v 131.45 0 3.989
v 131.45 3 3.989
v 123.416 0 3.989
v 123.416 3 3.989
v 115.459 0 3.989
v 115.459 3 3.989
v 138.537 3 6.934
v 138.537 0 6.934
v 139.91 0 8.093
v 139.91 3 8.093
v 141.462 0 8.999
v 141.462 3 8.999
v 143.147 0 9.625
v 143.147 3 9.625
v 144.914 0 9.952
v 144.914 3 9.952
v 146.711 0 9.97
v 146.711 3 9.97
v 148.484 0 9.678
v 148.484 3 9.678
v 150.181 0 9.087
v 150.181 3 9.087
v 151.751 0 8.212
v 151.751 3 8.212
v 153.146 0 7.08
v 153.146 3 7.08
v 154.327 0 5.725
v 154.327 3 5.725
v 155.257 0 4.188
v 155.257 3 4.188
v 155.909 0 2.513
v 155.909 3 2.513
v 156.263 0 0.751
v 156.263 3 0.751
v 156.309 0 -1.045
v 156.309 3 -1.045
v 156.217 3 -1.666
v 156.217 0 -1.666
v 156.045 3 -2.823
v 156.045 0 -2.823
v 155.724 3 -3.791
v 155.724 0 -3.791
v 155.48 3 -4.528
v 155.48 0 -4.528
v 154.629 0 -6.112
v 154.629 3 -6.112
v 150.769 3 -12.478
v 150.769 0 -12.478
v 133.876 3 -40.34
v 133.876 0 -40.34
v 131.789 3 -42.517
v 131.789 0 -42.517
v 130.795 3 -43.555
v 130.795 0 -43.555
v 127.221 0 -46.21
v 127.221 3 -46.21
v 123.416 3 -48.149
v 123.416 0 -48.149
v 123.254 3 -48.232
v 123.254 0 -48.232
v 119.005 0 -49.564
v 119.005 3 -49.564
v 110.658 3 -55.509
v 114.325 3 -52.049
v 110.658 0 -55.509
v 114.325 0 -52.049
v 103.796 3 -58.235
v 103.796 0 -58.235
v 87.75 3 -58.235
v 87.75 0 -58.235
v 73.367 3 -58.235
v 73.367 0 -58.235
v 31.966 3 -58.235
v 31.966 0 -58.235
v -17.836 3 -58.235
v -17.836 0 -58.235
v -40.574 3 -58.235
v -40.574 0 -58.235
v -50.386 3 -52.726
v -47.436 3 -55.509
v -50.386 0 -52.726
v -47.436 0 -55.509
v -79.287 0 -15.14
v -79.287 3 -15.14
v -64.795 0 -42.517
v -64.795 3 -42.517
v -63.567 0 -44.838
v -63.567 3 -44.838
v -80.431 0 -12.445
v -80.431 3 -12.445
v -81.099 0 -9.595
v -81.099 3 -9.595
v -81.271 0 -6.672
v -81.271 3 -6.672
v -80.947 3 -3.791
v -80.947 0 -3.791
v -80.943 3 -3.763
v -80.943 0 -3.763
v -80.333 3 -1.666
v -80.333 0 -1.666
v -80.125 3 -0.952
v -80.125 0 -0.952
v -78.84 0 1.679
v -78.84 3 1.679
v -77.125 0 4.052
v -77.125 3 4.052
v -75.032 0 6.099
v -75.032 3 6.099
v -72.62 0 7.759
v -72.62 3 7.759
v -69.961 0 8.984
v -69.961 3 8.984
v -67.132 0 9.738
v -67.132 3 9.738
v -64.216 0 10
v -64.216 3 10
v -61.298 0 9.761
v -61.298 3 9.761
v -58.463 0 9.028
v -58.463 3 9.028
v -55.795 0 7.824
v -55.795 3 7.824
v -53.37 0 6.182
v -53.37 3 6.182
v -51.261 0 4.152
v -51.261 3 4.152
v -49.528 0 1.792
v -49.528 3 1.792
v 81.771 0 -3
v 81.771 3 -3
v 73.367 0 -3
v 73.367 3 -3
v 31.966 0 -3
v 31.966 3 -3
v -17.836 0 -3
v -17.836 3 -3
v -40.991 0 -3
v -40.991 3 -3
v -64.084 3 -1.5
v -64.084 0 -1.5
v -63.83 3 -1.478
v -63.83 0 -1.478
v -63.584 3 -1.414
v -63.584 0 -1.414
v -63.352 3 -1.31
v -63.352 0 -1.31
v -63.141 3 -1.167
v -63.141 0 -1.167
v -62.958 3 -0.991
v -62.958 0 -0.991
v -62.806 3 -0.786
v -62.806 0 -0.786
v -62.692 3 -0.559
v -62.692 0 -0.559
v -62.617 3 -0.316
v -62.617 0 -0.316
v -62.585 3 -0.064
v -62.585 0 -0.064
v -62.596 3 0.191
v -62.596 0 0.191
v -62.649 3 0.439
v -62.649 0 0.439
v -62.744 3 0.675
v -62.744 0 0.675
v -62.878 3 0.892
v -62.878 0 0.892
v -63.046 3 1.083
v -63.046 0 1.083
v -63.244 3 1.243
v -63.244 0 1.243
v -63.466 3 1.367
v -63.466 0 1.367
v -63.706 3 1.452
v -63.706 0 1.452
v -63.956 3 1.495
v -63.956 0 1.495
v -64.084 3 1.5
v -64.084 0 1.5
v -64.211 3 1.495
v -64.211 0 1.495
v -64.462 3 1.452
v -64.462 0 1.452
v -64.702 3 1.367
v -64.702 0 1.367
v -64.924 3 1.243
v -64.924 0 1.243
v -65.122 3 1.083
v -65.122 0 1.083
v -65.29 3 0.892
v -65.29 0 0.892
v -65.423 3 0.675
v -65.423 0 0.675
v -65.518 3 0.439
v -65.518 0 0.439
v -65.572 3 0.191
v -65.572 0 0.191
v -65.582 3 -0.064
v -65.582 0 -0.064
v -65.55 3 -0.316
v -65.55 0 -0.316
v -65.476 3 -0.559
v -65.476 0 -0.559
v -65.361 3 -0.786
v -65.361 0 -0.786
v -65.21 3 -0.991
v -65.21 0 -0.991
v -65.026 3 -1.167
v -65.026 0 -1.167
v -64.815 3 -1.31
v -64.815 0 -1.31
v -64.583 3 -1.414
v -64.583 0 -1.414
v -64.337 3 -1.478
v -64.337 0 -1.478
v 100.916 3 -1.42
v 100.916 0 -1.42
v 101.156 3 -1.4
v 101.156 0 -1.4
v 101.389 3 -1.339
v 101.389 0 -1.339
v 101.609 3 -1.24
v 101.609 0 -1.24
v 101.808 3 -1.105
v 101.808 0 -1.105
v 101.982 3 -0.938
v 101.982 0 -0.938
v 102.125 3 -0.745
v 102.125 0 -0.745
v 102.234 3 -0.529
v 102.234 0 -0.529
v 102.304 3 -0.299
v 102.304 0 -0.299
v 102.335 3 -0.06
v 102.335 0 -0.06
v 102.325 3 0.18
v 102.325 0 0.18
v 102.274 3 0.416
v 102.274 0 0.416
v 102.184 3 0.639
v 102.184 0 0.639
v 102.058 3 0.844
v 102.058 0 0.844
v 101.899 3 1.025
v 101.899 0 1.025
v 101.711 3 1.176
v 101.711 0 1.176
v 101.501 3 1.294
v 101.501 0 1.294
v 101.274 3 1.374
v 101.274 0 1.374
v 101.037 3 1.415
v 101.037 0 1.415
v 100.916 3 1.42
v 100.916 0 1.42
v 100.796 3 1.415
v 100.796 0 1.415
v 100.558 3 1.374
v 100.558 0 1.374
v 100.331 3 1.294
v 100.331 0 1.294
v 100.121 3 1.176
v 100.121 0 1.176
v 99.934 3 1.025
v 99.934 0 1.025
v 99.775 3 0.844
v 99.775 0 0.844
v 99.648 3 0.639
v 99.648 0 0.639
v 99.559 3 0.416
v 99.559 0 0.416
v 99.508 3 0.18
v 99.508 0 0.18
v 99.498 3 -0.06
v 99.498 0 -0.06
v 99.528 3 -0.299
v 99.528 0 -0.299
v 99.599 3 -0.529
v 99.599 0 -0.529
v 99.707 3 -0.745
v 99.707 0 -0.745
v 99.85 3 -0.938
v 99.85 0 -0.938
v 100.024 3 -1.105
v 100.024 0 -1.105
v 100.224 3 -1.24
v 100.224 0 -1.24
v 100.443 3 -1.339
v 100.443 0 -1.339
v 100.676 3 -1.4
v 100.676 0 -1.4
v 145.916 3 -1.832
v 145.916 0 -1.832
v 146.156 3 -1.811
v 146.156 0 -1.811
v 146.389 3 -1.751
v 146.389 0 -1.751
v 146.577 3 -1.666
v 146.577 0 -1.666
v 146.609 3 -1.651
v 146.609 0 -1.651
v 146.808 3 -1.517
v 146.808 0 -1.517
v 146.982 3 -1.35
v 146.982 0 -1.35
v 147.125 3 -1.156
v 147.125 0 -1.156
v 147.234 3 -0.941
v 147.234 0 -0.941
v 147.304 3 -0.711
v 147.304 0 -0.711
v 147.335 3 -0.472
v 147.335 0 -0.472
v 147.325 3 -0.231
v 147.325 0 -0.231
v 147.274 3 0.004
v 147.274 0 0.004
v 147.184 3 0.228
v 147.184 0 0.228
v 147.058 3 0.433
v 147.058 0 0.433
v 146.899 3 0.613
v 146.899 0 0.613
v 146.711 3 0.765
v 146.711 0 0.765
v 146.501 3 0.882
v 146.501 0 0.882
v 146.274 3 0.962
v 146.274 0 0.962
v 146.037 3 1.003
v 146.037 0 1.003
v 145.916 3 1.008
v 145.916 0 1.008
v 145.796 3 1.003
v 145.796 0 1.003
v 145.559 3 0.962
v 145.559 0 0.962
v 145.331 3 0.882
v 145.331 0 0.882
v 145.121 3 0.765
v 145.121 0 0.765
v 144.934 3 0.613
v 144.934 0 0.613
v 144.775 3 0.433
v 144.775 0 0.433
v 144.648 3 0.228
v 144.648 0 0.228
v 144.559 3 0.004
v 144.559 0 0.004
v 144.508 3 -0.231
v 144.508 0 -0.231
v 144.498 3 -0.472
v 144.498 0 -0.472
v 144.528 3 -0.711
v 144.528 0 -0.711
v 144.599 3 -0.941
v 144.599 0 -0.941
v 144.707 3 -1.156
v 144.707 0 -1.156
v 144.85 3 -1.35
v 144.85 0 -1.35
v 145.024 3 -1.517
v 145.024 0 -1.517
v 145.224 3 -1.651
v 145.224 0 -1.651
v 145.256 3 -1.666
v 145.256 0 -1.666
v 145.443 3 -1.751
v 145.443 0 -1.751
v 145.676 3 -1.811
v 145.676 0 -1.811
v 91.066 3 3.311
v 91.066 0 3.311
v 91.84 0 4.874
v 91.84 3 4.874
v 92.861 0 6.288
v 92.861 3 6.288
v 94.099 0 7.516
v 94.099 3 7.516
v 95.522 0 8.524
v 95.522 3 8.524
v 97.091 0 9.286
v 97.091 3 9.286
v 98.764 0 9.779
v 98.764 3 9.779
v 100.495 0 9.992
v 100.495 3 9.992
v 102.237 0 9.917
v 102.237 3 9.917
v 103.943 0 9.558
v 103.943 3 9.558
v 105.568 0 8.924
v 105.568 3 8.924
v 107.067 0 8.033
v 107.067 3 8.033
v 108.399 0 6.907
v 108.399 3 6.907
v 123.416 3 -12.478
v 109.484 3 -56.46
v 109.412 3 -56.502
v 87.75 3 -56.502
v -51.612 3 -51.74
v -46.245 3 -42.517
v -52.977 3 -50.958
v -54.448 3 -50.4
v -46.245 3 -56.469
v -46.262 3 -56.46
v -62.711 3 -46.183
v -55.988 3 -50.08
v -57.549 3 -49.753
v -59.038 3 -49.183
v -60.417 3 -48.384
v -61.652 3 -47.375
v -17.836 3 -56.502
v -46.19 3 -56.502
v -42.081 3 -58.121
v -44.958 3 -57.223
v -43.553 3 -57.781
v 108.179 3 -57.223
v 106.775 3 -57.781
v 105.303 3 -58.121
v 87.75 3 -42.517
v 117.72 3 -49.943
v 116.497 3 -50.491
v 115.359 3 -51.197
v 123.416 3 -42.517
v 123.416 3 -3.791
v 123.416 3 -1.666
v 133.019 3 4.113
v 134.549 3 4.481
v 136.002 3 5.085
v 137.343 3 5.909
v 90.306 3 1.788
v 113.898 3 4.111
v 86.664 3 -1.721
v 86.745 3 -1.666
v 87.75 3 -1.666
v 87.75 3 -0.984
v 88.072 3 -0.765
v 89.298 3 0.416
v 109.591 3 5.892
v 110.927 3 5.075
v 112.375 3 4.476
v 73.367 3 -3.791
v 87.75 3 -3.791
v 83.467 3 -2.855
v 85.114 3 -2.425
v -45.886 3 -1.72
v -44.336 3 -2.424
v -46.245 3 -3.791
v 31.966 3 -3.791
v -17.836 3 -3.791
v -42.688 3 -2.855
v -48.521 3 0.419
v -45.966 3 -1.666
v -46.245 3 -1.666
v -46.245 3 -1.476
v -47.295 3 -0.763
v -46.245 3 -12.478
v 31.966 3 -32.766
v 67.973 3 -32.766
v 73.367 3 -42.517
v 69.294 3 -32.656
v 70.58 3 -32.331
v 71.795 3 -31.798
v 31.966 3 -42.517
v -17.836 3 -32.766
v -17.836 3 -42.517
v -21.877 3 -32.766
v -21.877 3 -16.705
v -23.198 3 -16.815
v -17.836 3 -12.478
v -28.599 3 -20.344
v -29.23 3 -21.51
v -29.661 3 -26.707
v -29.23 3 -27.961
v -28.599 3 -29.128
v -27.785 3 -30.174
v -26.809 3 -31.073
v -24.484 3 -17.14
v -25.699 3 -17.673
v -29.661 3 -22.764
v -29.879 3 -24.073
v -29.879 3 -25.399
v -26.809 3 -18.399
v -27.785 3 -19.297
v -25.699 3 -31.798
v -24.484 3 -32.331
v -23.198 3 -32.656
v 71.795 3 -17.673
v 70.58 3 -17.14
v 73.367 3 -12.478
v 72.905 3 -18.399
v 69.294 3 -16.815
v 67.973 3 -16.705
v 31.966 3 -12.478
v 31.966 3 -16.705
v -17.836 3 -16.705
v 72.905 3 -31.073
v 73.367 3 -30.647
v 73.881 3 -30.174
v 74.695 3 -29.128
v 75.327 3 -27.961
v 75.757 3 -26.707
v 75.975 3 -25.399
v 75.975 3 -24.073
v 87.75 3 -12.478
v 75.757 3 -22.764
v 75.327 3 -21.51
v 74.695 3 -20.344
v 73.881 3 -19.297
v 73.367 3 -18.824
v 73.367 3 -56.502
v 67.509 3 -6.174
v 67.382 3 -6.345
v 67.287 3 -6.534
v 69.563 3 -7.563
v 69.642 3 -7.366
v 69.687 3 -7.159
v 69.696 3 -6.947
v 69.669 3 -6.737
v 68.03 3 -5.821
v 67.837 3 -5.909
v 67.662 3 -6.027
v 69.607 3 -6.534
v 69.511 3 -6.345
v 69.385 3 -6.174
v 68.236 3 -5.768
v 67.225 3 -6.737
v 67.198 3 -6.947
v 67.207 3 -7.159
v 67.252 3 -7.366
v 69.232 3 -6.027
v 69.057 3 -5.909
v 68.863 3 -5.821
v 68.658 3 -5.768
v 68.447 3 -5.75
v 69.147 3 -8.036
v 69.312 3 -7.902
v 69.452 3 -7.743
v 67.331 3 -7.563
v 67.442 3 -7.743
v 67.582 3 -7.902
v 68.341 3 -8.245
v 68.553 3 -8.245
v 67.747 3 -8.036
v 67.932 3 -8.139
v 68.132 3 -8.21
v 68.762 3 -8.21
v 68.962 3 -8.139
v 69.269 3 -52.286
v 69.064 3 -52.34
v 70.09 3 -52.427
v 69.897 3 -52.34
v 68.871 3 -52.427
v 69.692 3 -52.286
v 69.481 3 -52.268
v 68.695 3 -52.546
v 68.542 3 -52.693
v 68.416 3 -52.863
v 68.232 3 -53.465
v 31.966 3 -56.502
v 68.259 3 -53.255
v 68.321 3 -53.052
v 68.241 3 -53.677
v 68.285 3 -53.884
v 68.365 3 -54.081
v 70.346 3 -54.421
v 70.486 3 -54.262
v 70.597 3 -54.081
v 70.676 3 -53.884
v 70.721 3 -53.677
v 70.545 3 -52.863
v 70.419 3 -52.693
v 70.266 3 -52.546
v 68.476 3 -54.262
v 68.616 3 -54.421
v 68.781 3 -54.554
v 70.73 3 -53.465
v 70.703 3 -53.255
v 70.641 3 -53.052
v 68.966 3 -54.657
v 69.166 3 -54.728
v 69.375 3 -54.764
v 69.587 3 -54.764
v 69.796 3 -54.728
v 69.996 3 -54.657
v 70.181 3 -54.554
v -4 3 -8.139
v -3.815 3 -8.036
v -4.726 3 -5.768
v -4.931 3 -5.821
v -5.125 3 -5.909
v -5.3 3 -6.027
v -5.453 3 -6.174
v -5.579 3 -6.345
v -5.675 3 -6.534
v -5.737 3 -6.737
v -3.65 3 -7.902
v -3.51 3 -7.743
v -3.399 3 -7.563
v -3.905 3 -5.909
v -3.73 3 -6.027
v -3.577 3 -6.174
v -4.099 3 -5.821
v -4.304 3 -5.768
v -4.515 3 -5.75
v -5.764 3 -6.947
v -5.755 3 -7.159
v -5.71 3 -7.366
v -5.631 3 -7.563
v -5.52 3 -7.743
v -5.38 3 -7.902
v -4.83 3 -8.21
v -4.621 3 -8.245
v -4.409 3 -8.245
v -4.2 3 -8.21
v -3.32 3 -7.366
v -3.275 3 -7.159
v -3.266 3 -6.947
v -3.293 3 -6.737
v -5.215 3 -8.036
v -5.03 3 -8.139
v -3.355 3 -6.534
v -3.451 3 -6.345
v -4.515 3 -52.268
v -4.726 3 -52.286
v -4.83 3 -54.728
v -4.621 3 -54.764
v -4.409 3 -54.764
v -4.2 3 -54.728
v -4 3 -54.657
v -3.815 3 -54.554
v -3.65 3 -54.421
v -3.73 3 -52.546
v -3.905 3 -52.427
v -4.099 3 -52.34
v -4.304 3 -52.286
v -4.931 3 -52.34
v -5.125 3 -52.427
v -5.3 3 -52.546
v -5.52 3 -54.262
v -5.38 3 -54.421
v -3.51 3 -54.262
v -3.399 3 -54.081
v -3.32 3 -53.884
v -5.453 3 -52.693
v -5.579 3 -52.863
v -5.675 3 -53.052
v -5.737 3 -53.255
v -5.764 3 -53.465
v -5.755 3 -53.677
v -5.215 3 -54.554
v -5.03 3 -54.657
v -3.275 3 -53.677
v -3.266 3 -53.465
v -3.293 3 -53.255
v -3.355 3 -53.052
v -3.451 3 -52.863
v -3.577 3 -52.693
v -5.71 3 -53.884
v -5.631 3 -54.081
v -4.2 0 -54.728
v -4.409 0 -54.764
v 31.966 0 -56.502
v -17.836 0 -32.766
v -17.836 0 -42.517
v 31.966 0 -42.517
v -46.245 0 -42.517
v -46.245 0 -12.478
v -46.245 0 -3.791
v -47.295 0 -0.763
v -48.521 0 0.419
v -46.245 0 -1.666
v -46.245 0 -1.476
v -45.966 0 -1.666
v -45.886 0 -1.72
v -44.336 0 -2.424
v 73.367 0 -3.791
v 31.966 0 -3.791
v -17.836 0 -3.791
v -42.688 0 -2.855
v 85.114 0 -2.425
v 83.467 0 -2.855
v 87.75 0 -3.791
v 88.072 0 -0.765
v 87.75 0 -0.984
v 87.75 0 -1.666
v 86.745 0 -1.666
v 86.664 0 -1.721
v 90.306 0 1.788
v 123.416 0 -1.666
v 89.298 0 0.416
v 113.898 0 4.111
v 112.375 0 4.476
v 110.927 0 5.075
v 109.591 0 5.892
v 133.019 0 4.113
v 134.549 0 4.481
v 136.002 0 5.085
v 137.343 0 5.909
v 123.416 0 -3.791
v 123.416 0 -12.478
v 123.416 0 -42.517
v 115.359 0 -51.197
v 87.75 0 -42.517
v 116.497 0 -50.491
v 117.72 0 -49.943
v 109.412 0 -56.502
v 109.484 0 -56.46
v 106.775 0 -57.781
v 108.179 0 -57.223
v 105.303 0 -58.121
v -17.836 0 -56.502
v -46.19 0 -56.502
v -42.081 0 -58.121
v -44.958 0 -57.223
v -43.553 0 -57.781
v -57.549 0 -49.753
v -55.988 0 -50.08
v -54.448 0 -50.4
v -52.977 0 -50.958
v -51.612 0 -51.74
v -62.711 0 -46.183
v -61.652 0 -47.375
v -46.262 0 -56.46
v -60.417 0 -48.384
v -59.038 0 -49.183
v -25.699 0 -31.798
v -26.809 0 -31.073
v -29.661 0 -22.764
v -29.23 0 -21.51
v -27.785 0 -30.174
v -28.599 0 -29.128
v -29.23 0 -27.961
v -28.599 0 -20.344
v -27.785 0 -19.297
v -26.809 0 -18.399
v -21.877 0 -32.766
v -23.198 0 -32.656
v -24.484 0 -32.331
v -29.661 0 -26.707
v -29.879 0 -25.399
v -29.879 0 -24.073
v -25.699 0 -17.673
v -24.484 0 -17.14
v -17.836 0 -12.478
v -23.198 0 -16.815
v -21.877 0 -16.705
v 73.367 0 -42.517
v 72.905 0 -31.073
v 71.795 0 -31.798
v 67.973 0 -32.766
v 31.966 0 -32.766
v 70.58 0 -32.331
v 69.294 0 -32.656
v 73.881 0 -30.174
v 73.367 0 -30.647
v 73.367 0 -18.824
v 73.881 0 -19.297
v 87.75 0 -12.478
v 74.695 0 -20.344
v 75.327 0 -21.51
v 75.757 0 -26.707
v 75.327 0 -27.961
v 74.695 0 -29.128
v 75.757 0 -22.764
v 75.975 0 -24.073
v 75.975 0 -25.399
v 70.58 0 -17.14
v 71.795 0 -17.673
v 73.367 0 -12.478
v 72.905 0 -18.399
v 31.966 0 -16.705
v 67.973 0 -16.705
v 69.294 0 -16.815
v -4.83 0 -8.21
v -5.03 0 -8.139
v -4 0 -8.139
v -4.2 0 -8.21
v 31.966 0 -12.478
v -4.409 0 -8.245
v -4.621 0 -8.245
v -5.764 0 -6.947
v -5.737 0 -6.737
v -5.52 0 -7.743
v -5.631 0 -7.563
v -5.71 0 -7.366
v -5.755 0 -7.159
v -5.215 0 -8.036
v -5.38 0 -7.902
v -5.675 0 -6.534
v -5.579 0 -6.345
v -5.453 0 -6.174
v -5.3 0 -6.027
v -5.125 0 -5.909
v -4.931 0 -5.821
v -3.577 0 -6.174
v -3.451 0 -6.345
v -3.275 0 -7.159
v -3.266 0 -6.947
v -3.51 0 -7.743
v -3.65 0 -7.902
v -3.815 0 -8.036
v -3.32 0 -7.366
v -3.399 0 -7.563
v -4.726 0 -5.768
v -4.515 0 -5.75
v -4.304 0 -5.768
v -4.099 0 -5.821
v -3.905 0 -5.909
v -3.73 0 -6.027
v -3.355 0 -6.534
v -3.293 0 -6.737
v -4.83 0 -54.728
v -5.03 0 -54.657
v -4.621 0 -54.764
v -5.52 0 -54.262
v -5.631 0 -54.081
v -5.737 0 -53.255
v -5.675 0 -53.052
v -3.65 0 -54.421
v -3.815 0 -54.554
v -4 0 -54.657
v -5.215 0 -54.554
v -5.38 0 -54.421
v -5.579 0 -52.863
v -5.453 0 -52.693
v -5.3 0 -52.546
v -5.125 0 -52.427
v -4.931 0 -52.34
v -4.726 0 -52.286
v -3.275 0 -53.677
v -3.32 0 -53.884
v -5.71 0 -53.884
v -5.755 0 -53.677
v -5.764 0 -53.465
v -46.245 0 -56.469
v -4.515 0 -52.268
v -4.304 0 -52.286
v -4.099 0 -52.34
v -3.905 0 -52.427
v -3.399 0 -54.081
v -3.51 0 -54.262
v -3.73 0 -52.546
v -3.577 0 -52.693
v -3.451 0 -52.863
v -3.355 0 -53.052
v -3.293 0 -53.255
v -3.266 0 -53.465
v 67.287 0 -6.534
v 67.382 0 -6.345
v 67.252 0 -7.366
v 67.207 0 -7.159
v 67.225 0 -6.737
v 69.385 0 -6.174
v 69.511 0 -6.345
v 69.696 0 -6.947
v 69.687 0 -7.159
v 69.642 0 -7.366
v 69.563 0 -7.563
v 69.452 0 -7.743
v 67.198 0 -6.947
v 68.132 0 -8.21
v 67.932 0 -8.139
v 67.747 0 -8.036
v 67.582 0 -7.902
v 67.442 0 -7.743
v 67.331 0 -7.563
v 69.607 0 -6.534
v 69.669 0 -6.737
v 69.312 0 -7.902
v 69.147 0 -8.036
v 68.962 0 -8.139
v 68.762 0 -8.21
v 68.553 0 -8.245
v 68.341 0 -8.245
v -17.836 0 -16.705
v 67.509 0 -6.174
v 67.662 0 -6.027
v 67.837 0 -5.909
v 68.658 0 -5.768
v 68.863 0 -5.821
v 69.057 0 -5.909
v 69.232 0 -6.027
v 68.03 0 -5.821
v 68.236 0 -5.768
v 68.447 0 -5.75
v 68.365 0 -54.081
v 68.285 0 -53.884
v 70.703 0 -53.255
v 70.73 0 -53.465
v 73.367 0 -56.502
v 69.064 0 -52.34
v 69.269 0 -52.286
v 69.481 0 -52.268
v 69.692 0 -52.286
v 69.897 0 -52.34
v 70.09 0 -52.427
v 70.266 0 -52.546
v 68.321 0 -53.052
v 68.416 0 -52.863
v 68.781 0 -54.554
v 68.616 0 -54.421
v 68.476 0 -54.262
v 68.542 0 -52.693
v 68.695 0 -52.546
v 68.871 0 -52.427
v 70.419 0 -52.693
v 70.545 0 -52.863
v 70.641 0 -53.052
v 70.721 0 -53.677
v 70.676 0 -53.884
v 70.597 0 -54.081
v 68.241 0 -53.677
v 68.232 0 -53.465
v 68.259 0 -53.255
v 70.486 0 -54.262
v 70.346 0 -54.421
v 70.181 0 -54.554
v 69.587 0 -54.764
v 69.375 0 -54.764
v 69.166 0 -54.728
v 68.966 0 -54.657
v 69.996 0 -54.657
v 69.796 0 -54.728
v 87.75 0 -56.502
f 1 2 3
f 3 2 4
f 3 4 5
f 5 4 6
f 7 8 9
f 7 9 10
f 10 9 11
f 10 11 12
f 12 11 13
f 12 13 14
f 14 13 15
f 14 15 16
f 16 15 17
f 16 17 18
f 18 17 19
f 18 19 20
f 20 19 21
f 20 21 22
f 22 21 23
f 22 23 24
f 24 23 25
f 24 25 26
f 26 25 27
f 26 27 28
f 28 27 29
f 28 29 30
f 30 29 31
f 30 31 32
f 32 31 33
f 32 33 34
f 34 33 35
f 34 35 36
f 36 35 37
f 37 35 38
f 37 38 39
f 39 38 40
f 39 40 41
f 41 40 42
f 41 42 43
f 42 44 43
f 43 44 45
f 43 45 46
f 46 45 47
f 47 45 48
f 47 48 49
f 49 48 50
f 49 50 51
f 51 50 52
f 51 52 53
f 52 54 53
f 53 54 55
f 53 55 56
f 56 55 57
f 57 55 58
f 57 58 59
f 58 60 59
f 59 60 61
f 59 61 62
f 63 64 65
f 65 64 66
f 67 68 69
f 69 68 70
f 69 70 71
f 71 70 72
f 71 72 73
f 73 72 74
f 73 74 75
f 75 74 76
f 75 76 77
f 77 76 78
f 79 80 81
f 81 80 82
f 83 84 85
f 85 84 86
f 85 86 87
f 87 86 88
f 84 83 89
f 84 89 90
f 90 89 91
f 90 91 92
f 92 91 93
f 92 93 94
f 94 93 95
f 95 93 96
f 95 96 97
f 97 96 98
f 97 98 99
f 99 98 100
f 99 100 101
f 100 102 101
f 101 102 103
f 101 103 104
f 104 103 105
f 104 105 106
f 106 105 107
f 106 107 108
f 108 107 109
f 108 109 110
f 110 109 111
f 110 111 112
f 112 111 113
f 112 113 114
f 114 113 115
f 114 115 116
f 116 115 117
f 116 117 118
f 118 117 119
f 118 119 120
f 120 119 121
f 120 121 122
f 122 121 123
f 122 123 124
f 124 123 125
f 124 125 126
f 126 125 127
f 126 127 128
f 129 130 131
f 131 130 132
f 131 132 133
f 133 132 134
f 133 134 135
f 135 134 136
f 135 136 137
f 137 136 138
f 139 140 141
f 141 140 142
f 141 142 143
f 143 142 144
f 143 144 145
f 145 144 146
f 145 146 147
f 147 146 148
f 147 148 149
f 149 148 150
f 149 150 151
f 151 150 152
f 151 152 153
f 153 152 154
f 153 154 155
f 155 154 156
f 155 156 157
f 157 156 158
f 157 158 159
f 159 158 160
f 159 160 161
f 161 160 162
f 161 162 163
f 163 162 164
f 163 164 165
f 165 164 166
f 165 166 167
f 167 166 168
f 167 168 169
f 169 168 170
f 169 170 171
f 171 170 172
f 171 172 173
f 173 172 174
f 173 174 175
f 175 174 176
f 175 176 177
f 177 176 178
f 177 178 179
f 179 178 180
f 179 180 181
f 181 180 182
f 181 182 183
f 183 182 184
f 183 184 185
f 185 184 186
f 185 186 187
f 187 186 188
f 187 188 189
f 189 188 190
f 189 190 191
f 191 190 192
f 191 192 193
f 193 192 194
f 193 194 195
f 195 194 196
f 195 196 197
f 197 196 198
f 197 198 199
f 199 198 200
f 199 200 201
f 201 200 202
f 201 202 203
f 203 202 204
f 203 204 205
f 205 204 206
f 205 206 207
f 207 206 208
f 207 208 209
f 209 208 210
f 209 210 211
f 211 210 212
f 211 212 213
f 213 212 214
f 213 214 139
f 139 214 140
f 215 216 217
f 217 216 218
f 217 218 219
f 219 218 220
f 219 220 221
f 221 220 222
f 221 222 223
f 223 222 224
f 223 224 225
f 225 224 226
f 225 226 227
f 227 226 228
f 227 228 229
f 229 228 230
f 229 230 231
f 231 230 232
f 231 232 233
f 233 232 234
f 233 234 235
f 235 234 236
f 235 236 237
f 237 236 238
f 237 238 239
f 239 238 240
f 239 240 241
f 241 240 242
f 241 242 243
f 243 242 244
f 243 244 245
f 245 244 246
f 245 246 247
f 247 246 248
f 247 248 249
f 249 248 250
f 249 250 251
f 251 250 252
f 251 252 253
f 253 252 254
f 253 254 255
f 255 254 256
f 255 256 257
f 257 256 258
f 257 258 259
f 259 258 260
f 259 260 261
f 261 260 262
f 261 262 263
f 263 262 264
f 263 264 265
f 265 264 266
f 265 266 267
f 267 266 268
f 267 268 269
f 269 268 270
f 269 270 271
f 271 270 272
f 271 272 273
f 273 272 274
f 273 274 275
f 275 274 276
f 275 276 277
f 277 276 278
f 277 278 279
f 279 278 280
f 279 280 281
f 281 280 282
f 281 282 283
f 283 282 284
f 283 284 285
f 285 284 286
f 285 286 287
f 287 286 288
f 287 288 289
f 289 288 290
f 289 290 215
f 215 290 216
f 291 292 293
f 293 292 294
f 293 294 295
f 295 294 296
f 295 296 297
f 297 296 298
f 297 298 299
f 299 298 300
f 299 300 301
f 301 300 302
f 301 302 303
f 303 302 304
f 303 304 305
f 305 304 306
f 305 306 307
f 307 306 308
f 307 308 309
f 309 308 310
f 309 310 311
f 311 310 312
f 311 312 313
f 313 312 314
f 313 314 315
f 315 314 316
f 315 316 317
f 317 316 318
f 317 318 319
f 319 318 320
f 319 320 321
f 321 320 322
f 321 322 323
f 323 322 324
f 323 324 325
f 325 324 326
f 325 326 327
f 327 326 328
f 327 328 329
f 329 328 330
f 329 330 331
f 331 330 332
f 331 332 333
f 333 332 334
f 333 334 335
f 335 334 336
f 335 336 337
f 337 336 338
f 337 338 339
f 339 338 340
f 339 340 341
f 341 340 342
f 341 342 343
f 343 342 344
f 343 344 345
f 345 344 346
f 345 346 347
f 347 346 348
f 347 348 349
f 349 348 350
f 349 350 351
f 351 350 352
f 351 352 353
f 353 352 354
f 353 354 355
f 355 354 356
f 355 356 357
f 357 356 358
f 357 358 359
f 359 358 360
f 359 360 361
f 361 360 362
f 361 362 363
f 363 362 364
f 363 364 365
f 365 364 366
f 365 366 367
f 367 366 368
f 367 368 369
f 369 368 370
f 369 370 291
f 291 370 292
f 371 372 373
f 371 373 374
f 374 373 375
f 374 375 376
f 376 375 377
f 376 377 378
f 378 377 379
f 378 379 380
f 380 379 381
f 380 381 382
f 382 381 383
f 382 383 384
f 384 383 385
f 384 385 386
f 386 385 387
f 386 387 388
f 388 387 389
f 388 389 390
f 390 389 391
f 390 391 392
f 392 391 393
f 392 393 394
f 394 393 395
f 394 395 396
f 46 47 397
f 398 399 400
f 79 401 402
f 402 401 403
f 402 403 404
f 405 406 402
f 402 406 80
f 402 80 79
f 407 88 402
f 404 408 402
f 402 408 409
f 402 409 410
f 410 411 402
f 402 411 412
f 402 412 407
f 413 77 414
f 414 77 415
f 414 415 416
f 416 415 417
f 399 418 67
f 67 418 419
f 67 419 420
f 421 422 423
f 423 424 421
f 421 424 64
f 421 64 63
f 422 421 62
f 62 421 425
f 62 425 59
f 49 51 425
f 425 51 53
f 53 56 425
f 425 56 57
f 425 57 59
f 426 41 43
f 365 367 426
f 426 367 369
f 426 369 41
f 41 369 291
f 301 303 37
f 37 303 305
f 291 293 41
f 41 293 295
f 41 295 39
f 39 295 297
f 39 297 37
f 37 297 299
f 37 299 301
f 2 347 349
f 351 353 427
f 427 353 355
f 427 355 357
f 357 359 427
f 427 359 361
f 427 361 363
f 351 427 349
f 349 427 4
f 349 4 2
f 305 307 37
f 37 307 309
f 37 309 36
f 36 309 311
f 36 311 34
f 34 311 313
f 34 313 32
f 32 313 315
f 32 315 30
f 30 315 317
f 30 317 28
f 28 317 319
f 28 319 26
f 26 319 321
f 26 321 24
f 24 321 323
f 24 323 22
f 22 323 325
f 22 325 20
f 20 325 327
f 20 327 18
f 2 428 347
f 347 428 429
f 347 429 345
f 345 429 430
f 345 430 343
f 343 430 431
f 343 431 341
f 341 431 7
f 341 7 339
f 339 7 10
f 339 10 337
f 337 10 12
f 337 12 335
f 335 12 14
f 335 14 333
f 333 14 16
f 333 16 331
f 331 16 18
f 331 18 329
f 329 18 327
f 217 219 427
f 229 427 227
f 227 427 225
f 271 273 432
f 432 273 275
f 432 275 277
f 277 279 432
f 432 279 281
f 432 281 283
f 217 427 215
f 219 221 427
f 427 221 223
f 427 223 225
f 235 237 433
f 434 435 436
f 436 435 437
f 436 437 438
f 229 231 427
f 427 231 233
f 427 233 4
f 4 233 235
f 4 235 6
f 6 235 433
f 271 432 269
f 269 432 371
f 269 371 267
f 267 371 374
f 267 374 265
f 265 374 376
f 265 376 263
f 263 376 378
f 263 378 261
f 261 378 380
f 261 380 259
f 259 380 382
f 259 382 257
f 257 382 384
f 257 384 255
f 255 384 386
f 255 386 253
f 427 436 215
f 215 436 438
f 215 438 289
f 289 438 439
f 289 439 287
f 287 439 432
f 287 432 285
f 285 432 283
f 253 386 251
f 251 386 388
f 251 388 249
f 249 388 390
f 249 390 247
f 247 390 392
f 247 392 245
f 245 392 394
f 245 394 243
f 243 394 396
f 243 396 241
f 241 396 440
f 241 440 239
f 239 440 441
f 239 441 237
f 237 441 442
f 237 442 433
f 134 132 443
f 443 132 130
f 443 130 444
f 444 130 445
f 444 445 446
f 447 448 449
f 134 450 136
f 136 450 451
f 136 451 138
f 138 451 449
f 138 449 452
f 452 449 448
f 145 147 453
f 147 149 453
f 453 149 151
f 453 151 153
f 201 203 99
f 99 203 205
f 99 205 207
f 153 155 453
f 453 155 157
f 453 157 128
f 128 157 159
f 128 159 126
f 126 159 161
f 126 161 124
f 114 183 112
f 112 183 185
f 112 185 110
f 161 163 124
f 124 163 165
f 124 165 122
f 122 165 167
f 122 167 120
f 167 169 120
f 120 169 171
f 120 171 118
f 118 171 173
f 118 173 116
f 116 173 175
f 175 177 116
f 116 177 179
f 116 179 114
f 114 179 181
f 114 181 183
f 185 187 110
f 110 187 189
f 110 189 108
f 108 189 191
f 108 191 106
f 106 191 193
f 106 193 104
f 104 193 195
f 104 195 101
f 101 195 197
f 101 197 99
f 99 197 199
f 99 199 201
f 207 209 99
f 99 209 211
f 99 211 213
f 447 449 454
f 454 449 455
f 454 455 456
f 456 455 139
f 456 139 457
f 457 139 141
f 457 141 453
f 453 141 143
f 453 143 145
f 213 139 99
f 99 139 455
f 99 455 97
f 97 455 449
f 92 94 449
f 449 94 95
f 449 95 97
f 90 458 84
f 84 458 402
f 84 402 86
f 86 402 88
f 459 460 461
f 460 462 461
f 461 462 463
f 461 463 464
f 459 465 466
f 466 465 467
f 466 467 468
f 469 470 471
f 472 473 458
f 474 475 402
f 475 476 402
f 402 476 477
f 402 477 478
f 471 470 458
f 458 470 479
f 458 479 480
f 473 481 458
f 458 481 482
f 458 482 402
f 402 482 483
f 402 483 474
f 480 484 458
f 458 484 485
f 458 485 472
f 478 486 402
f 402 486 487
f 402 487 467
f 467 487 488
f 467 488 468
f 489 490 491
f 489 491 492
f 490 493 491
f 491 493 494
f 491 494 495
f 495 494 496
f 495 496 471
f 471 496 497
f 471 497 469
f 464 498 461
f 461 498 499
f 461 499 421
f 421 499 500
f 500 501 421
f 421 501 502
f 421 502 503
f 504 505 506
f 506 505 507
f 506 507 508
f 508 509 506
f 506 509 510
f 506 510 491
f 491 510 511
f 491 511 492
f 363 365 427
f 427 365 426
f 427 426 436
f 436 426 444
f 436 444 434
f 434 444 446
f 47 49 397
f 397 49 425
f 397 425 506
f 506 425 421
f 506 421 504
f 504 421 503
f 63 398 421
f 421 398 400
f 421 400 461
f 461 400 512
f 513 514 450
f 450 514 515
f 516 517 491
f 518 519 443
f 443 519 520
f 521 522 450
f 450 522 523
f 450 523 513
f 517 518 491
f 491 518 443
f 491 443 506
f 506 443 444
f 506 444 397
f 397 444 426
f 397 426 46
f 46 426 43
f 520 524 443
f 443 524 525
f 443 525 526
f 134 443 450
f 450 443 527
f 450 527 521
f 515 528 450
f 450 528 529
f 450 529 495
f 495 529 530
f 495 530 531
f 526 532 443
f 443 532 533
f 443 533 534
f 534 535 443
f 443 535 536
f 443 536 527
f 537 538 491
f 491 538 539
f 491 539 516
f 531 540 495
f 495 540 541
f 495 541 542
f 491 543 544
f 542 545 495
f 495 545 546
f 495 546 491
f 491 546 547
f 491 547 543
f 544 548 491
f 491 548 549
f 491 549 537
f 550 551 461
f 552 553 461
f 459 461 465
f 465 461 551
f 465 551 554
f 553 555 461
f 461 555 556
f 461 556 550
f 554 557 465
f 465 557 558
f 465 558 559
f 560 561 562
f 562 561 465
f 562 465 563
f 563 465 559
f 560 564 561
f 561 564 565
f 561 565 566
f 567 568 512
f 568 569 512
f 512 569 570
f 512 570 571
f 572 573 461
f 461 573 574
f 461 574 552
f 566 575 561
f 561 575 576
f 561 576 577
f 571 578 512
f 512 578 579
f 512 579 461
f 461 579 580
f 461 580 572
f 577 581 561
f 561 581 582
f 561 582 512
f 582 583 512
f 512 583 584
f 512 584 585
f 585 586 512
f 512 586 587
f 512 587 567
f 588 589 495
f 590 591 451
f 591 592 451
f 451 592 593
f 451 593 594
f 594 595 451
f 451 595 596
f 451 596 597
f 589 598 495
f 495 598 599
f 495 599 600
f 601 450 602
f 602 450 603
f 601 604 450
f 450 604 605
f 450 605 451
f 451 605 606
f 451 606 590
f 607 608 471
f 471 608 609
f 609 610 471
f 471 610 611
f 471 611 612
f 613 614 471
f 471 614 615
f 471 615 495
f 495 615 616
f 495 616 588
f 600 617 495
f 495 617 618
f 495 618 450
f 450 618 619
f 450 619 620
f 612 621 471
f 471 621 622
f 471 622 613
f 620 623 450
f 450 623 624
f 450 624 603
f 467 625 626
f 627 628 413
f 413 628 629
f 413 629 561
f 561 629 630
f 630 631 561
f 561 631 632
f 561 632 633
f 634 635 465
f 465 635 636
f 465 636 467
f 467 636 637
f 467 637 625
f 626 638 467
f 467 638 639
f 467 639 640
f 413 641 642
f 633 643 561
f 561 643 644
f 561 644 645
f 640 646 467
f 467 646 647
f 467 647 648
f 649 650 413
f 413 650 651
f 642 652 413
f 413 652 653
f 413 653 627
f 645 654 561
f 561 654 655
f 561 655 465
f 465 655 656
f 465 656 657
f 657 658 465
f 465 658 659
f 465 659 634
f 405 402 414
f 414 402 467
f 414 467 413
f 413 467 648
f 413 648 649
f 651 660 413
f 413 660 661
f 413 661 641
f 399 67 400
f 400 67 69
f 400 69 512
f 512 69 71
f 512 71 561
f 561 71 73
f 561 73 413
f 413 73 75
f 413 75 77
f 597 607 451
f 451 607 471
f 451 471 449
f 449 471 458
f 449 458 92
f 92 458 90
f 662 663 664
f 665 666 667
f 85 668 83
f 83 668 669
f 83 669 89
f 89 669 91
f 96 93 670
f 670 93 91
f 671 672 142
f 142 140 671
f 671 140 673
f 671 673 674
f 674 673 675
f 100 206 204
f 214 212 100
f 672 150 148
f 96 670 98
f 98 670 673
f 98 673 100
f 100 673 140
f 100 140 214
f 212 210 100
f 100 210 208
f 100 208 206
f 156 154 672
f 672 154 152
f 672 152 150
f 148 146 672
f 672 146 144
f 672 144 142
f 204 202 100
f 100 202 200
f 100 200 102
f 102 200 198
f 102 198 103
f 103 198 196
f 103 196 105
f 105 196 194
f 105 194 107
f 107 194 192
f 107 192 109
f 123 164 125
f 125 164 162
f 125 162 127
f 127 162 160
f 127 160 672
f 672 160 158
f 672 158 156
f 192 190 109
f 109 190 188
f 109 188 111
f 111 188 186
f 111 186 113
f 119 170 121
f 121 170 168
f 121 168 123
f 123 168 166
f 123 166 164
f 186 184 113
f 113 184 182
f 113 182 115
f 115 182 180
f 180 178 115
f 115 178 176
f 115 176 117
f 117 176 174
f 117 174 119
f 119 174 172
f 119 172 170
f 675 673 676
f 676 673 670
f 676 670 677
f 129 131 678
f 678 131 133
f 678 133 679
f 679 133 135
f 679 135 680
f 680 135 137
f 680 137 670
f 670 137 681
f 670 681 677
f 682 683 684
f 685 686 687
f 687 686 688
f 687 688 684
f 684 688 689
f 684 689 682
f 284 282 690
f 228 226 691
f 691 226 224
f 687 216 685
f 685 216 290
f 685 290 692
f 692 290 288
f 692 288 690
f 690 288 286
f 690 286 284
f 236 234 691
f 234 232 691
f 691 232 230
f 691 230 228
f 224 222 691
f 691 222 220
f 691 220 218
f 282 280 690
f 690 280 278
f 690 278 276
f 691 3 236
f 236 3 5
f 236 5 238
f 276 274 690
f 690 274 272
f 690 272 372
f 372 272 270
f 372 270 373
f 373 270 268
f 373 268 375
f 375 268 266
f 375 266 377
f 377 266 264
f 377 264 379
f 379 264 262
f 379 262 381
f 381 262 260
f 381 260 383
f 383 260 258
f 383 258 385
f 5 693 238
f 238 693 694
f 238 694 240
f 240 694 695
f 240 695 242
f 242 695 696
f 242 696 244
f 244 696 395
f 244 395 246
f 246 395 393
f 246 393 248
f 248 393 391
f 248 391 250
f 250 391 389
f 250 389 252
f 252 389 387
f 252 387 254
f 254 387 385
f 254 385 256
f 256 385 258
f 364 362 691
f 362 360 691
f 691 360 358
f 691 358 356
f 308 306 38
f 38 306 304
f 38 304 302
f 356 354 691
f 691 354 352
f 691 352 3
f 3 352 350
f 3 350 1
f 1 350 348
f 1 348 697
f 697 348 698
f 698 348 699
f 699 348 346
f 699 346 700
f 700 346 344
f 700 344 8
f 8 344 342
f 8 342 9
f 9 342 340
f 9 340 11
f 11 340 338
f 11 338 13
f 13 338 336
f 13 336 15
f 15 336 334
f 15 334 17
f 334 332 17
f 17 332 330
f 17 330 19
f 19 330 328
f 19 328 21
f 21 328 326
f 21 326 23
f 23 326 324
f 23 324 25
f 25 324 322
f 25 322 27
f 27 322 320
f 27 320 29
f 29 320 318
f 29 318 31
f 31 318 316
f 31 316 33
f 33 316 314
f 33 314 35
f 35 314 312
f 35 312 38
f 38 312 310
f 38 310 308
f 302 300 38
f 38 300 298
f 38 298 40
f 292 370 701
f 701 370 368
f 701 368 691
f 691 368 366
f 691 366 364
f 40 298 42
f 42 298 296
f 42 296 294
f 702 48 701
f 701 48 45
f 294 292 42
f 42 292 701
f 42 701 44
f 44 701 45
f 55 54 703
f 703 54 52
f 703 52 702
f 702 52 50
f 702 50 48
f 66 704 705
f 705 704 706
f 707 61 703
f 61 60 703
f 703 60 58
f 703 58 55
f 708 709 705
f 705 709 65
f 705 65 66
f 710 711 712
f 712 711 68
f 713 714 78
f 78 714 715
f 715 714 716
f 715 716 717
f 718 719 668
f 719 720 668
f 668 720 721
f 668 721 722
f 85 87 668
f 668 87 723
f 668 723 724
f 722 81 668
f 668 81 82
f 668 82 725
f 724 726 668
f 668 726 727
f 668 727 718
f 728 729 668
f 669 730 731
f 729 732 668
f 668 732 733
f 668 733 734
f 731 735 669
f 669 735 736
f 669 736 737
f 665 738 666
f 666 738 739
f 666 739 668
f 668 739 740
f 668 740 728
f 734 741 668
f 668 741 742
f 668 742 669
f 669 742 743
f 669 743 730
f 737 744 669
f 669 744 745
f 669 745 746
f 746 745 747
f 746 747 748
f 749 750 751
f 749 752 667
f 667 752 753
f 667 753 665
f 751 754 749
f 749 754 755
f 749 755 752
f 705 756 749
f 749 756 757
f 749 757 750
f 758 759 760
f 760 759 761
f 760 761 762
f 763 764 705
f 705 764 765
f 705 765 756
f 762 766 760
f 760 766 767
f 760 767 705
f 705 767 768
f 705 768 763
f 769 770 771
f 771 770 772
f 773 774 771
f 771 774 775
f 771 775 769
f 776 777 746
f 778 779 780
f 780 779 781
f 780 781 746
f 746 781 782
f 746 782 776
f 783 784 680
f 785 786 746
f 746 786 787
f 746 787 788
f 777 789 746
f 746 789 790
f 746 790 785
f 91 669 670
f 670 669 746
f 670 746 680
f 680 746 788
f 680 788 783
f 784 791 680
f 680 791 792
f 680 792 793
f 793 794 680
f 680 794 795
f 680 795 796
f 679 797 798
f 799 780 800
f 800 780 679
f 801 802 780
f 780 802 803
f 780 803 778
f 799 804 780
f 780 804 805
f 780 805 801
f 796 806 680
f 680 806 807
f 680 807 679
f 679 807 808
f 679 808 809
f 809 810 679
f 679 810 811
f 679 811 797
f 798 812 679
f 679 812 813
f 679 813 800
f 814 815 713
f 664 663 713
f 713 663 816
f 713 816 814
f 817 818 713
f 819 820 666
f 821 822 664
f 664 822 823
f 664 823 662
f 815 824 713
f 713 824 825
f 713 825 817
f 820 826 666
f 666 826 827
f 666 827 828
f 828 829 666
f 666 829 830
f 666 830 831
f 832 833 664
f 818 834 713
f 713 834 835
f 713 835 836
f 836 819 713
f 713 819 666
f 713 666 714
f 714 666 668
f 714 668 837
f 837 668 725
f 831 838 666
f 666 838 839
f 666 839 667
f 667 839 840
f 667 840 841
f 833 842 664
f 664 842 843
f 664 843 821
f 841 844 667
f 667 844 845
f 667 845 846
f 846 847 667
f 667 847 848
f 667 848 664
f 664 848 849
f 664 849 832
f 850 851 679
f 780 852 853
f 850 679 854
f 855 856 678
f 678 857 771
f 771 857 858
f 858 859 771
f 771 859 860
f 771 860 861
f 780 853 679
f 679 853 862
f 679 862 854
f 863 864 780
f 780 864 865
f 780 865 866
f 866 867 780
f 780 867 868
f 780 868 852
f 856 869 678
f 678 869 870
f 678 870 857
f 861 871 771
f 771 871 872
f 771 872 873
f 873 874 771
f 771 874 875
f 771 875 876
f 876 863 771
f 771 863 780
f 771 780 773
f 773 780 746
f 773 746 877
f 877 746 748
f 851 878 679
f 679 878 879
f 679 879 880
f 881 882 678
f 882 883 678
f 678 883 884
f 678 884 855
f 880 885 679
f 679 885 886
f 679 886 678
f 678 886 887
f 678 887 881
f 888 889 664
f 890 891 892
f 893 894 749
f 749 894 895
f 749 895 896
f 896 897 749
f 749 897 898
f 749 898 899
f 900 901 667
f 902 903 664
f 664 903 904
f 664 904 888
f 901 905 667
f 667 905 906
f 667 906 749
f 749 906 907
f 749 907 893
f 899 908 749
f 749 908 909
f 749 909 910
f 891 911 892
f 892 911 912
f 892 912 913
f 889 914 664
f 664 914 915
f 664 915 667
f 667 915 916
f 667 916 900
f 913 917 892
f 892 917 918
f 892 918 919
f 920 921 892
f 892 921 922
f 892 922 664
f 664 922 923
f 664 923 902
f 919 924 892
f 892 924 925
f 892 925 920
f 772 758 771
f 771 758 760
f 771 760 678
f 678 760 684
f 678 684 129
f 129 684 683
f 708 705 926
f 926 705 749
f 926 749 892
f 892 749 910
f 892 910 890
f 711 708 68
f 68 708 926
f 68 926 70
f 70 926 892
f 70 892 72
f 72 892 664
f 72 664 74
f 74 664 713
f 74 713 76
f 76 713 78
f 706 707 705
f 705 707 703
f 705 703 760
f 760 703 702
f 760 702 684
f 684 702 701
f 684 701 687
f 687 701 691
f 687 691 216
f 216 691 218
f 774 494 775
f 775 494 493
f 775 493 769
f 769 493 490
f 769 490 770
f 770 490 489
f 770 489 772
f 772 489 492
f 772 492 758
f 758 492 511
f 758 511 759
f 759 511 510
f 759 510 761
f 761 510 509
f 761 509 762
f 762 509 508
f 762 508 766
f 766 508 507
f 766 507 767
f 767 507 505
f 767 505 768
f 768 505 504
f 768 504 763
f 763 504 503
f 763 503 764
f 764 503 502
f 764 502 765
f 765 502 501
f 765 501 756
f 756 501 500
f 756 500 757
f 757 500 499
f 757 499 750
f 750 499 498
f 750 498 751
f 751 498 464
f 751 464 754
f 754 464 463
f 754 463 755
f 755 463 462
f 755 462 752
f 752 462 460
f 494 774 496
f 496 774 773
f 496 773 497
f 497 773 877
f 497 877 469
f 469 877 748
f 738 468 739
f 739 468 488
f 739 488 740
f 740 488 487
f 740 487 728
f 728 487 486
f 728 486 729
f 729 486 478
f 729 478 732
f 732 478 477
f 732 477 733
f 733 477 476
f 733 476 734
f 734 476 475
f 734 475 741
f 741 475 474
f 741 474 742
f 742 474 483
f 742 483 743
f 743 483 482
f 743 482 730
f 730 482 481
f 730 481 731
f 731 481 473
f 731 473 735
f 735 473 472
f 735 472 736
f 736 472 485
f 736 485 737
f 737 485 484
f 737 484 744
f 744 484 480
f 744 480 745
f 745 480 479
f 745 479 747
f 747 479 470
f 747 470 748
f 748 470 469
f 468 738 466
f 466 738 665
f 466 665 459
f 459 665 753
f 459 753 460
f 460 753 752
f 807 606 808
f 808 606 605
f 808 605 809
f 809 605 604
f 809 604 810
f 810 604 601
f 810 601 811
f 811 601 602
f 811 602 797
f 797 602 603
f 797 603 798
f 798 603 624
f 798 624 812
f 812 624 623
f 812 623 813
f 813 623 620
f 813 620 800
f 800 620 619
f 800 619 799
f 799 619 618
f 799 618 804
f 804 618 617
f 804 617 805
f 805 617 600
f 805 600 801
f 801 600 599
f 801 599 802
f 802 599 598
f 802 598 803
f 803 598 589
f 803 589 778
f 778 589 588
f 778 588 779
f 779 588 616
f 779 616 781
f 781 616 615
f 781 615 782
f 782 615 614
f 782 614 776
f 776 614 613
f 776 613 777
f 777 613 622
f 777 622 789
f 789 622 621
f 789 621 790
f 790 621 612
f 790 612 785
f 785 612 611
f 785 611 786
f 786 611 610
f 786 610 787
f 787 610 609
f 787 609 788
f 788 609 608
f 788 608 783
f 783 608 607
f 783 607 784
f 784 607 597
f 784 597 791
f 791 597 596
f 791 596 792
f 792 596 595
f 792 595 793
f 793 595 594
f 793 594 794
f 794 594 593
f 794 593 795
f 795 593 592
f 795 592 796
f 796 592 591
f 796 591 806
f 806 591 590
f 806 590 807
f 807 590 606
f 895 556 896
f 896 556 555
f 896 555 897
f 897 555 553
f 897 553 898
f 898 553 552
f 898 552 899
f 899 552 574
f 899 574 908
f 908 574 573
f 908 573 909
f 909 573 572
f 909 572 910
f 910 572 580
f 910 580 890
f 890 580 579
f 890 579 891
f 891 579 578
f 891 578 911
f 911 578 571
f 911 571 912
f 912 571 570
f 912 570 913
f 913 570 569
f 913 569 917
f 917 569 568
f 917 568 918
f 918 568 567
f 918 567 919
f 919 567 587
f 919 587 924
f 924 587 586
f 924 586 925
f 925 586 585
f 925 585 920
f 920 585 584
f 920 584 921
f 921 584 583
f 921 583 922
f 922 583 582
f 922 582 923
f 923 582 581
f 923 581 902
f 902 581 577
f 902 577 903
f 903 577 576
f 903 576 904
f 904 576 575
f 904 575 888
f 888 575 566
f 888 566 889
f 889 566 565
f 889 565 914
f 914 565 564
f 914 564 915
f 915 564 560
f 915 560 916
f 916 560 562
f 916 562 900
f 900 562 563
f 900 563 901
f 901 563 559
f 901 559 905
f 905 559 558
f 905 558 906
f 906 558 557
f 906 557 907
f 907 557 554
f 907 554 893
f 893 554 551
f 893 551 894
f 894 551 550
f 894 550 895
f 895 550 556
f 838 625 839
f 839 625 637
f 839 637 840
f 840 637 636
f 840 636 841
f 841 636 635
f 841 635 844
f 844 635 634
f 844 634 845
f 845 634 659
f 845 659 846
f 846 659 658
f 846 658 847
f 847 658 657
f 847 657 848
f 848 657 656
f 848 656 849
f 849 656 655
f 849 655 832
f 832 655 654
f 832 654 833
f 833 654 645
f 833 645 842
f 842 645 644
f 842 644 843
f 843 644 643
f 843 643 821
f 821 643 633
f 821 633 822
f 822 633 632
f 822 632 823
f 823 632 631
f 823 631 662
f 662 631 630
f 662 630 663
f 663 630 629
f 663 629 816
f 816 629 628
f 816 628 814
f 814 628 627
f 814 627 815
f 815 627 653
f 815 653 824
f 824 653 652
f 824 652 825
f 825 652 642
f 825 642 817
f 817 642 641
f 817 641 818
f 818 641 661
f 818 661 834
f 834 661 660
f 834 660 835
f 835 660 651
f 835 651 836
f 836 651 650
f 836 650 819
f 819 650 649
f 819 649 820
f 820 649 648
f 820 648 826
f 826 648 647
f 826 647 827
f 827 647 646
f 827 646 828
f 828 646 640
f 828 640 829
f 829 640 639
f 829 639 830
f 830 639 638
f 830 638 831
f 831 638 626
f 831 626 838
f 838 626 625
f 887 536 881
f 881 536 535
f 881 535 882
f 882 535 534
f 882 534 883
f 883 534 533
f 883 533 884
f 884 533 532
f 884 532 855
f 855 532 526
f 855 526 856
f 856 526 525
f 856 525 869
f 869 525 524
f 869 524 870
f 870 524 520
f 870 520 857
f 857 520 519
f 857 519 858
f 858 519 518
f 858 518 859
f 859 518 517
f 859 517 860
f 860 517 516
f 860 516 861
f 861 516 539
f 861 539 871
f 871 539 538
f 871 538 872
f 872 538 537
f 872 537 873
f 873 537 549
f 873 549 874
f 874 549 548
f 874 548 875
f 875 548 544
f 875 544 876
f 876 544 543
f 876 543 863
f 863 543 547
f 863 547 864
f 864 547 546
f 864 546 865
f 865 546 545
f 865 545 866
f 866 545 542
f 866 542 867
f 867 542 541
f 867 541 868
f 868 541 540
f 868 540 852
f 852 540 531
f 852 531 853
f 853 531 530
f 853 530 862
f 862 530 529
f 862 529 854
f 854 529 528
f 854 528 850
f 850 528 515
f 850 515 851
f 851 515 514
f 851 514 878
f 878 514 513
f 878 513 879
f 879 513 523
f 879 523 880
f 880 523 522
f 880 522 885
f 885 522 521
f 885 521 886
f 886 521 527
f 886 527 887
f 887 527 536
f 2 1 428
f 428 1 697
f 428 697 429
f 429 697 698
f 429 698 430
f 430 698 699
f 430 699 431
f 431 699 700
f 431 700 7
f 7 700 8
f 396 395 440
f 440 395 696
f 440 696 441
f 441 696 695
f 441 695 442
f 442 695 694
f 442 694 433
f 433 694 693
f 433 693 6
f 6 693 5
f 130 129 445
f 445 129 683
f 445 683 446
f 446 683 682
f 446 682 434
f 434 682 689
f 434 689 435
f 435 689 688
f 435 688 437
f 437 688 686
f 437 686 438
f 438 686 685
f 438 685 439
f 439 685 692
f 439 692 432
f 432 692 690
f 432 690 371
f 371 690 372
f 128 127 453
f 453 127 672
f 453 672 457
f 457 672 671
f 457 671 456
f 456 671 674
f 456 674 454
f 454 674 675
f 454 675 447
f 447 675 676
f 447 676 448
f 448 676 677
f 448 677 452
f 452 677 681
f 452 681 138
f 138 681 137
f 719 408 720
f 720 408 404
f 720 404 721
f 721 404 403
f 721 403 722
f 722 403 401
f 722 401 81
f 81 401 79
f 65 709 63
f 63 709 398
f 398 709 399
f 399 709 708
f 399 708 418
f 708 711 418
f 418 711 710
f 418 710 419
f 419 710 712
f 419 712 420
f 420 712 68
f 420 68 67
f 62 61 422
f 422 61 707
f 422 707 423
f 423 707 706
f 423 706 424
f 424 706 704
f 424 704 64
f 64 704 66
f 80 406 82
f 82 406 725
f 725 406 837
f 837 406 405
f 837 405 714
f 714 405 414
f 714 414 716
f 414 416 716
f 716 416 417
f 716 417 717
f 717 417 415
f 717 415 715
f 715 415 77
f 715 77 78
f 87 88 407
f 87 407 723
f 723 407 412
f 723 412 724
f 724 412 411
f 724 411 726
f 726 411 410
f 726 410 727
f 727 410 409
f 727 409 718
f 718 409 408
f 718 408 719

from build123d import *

# Parameters (mm, degrees)
SKETCH1_R           = 1.42
SKETCH1_R_2         = 1.5
BOSS_EXTRUDE1_DEPTH = 3
CUT_EXTRUDE1_DEPTH  = 10
SKETCH3_R           = 1.25
CUT_EXTRUDE2_DEPTH  = 4
FILLET3_R           = 10
FILLET5_R           = 10
FILLET6_R           = 10


with BuildPart() as part:
    # Sketch1 → Boss-Extrude1 (new body)
    with BuildSketch(Plane(origin=(0, 0, 0), x_dir=(1, 0, 0), z_dir=(0, 1, 0))):
        with BuildLine():
            ThreePointArc((133.875699804, 40.34048493), (126.122977609, 46.855267092), (116.497088404, 50))
            Line((116.497088404, 50), (107.768405602, 58.234688612))
            Line((107.768405602, 58.234688612), (-44.546790917, 58.234688612))
            Line((-44.546790917, 58.234688612), (-53.27547372, 50))
            Line((-53.27547372, 50), (-60.834293515, 50))
            Line((-60.834293515, 50), (-79.287118585, 15.140440013))
            ThreePointArc((-79.287118585, 15.140440013), (-70.265146029, -8.871003651), (-47.526969146, 3))
            Line((-47.526969146, 3), (90.594512312, 3))
            ThreePointArc((90.594512312, 3), (97.400879011, -9.399948213), (110.470105416, -3.988787107))
            Line((110.470105416, -3.988787107), (136.480218576, -3.988787107))
            ThreePointArc((136.480218576, -3.988787107), (150.979390144, -8.686037245), (154.629343476, 6.111529301))
            Line((154.629343476, 6.111529301), (133.875699804, 40.34048493))
        make_face()
        with Locations(Location((145.916308107, 0.41174787, 0), (0, 0, 270))):
            Circle(SKETCH1_R, mode=Mode.SUBTRACT)
        with Locations(Location((100.916308107, 0, 0), (0, 0, 270))):
            Circle(SKETCH1_R, mode=Mode.SUBTRACT)
        with Locations(Location((-64.083691893, 0, 0), (0, 0, 270))):
            Circle(SKETCH1_R_2, mode=Mode.SUBTRACT)
    extrude(amount=BOSS_EXTRUDE1_DEPTH)

    # Sketch2 → Cut-Extrude1 (cut)
    with BuildSketch(Plane(origin=(0, 3, 0), x_dir=(1, 0, 0), z_dir=(0, 1, 0))):
        with BuildLine():
            Line((67.972610999, 16.705365669), (-21.876516484, 16.705365669))
            ThreePointArc((-21.876516484, 16.705365669), (-29.906807538, 24.735656723), (-21.876516484, 32.765947778))
            Line((-21.876516484, 32.765947778), (67.972610999, 32.765947778))
            ThreePointArc((67.972610999, 32.765947778), (76.002902053, 24.735656723), (67.972610999, 16.705365669))
        make_face()
    extrude(amount=-CUT_EXTRUDE1_DEPTH, mode=Mode.SUBTRACT)

    # Sketch3 → Cut-Extrude2 (cut)
    with BuildSketch(Plane(origin=(0, 3, 0), x_dir=(1, 0, 0), z_dir=(0, 1, 0))):
        with Locations(Location((-4.515015694, 7, 0), (0, 0, 270))):
            Circle(SKETCH3_R)
        with Locations(Location((68.446888698, 7, 0), (0, 0, 270))):
            Circle(SKETCH3_R)
        with Locations(Location((-4.515015694, 53.518369915, 0), (0, 0, 270))):
            Circle(SKETCH3_R)
        with Locations(Location((69.48070481, 53.518369915, 0), (0, 0, 270))):
            Circle(SKETCH3_R)
    extrude(amount=-CUT_EXTRUDE2_DEPTH, mode=Mode.SUBTRACT)

    # Fillet3
    fillet3_edges = [part.edges().sort_by_distance(p)[0] for p in [
        (110.470105416, 1.5, 3.988787107),
        (90.594512312, 1.5, -3),
        (-47.526969146, 1.5, -3),
        (136.480218576, 1.5, 3.988787107),
    ]]
    fillet(fillet3_edges, radius=FILLET3_R)

    # Fillet5
    fillet5_edges = [part.edges().sort_by_distance(p)[0] for p in [
        (-53.27547372, 1.5, -50),
        (-44.546790917, 1.5, -58.234688612),
        (107.768405602, 1.5, -58.234688612),
        (116.497088404, 1.5, -50),
    ]]
    fillet(fillet5_edges, radius=FILLET5_R)

    # Fillet6
    fillet6_edges = [part.edges().sort_by_distance(p)[0] for p in [
        (-60.834293515, 1.5, -50),
    ]]
    fillet(fillet6_edges, radius=FILLET6_R)


solid = part.part
